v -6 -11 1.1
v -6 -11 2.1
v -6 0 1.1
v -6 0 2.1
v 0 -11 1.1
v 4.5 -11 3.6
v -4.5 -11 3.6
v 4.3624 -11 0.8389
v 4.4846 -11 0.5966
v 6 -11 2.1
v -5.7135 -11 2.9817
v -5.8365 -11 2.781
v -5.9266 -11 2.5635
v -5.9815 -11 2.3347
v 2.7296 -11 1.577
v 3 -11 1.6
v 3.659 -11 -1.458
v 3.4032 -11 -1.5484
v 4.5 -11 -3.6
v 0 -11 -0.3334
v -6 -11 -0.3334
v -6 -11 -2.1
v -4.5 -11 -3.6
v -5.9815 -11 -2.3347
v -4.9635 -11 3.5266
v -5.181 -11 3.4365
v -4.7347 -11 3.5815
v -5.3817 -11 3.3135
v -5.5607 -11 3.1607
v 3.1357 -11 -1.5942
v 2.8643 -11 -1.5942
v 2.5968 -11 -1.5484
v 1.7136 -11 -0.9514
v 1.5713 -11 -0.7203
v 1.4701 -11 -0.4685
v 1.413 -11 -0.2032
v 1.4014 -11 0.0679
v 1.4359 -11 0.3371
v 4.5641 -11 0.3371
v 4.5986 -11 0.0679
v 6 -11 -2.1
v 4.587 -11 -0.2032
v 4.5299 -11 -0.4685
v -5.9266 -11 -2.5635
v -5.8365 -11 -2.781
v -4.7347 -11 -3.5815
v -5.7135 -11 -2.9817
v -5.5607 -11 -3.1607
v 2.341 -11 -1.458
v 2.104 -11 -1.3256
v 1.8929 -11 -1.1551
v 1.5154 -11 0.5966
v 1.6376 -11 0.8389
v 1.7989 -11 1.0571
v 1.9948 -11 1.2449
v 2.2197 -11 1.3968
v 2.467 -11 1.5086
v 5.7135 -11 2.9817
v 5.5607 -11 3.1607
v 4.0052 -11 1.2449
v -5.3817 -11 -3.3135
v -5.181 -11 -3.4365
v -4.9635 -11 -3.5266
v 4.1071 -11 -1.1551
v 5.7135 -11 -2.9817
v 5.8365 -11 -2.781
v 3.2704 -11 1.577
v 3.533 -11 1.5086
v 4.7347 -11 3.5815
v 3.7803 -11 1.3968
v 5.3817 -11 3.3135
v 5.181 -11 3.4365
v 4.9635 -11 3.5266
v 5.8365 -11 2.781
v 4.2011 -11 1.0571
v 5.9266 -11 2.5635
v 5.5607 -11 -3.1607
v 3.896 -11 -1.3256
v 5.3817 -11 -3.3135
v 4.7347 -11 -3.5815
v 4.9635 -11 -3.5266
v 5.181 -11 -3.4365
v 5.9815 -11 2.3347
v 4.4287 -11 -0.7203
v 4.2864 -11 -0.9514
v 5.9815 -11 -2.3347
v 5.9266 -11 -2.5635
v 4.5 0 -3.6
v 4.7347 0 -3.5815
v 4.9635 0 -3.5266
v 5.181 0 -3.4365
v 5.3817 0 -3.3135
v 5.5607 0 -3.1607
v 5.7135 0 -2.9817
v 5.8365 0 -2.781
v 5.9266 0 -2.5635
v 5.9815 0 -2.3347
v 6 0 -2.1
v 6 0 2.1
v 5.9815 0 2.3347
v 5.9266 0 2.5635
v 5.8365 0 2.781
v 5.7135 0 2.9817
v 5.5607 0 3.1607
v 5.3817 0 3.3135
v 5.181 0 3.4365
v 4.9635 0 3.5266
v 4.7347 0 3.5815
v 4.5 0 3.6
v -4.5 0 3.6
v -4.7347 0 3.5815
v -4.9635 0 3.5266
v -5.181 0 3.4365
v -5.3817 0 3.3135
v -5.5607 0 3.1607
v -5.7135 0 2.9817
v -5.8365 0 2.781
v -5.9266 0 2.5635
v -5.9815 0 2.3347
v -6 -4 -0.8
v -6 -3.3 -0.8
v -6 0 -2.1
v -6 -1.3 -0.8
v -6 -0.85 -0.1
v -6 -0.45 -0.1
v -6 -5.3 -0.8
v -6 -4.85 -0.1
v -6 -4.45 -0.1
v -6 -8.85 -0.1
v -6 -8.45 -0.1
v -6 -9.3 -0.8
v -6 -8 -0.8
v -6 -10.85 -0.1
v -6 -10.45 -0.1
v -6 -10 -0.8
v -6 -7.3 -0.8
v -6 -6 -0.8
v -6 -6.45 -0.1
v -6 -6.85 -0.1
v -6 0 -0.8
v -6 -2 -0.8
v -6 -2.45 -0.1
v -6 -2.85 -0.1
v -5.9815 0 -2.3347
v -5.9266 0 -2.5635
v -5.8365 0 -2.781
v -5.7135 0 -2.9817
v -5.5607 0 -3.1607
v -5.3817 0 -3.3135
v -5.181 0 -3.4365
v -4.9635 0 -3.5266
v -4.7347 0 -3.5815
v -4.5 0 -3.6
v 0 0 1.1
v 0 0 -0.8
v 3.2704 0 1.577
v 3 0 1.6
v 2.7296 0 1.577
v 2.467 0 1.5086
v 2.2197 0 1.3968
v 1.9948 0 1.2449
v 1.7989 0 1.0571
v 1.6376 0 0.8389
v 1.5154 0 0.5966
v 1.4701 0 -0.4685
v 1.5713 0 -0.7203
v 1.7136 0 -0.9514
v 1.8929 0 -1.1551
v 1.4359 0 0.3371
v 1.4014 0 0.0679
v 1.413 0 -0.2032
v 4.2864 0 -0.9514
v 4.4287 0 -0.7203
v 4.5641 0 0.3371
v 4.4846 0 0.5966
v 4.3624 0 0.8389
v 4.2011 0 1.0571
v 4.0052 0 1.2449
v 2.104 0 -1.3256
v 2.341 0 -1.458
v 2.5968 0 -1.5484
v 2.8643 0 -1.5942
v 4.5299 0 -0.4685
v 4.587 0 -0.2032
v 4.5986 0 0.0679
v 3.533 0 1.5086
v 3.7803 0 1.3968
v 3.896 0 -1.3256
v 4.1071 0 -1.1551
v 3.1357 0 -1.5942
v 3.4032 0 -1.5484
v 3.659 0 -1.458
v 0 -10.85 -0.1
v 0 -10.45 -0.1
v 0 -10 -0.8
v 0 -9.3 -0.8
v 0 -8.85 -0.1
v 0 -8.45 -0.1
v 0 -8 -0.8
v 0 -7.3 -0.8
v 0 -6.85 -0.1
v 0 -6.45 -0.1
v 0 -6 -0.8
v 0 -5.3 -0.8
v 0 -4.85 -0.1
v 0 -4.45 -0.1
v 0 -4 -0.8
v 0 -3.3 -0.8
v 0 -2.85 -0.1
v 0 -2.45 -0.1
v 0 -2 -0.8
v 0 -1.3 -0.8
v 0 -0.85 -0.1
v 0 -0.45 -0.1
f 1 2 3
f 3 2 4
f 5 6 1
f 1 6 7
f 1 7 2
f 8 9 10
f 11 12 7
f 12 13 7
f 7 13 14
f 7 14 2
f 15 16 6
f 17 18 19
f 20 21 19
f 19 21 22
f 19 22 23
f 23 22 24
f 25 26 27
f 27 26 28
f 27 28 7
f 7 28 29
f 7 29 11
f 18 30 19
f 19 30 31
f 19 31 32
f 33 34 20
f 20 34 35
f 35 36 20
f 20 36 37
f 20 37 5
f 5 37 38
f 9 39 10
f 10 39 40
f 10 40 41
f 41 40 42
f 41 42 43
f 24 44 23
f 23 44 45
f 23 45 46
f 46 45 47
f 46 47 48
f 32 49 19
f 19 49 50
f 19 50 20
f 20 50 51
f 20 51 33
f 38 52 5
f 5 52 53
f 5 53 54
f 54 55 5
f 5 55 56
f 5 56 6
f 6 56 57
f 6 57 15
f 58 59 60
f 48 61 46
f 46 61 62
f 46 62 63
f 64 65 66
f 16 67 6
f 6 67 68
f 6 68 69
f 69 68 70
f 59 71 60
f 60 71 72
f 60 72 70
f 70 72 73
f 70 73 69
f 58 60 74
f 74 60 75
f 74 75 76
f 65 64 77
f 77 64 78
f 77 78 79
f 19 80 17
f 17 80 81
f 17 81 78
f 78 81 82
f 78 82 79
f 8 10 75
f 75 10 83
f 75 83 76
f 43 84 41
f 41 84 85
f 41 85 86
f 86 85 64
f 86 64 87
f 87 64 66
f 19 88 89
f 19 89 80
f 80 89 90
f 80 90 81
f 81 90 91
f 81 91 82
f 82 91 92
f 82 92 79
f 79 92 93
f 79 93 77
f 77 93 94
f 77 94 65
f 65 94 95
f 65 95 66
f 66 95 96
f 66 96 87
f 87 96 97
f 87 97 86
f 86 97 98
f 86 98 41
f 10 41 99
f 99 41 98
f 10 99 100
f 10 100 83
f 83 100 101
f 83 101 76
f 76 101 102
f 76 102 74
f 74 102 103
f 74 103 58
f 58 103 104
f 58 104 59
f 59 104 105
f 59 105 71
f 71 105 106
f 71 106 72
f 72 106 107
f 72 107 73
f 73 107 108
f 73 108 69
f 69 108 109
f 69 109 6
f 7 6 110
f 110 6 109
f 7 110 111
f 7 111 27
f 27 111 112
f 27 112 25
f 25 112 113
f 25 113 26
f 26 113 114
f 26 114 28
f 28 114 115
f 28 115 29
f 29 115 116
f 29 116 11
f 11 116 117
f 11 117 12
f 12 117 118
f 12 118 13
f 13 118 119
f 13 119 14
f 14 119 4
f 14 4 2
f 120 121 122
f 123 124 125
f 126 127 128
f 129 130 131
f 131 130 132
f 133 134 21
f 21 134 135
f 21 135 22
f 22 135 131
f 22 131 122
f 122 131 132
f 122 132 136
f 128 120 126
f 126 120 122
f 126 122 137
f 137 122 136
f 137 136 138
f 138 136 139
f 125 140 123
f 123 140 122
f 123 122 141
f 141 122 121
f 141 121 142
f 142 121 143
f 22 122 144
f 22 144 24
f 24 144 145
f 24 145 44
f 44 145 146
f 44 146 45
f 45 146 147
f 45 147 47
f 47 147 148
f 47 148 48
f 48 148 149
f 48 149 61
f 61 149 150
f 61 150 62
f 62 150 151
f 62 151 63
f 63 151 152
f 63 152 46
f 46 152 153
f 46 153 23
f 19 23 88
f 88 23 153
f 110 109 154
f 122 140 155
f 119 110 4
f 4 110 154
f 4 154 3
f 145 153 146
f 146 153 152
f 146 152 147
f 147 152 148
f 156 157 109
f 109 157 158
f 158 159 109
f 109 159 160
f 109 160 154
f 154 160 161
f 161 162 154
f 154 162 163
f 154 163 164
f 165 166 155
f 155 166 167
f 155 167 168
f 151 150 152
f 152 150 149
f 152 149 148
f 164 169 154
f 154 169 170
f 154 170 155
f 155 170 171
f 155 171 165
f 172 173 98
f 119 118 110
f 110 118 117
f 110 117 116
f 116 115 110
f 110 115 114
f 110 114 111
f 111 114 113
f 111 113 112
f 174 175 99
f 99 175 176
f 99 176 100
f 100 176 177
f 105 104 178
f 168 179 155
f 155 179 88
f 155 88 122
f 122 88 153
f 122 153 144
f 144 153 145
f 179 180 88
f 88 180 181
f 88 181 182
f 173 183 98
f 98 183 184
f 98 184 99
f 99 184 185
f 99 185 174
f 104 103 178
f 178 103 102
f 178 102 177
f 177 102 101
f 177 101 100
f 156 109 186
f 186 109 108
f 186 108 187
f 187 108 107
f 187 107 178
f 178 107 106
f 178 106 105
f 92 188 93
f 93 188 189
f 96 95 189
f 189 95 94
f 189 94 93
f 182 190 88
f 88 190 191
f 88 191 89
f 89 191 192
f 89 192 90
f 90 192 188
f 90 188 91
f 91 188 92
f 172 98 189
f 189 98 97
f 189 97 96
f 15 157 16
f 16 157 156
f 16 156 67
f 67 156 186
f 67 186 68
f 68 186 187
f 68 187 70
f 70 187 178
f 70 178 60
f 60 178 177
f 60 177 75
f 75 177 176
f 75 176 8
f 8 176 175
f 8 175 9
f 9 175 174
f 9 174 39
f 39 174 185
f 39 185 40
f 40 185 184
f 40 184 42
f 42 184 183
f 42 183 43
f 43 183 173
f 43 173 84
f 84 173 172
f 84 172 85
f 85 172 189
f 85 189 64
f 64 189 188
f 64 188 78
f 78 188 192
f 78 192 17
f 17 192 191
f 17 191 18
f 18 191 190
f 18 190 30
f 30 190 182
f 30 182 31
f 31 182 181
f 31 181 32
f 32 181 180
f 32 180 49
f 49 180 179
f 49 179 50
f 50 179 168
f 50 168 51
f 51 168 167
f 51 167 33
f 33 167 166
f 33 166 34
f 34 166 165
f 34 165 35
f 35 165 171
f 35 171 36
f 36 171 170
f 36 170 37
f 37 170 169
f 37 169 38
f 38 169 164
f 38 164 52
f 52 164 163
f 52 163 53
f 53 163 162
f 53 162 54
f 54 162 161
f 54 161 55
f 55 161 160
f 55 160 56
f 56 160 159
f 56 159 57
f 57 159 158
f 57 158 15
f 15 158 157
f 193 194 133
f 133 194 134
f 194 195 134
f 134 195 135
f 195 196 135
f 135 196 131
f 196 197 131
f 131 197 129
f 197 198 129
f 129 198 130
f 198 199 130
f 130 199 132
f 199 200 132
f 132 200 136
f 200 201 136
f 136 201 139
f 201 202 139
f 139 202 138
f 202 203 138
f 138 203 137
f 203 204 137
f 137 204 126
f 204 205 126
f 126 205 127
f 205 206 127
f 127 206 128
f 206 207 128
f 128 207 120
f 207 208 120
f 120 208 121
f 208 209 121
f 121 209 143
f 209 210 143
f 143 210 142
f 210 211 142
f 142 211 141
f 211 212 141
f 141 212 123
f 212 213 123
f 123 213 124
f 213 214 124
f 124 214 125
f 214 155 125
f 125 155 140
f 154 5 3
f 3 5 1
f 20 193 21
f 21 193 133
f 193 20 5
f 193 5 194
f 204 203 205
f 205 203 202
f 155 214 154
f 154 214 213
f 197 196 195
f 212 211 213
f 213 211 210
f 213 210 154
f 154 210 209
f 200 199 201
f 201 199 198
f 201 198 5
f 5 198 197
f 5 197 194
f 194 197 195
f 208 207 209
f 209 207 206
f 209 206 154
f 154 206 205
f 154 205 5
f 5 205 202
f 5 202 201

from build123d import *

# Parameters (mm, degrees)
SKETCH1_R           = 1.6
BOSS_EXTRUDE1_DEPTH = 11
CUT_EXTRUDE1_DEPTH  = 6


with BuildPart() as part:
    # Sketch1 → Boss-Extrude1 (new body)
    with BuildSketch(Plane(origin=(0, 0, 0), x_dir=(1, 0, 0), z_dir=(0, 1, 0))):
        with BuildLine():
            Line((-4.5, -3.6), (4.5, -3.6))
            ThreePointArc((4.5, -3.6), (5.560660172, -3.160660172), (6, -2.1))
            Line((6, -2.1), (6, 2.1))
            ThreePointArc((6, 2.1), (5.560660172, 3.160660172), (4.5, 3.6))
            Line((4.5, 3.6), (-4.5, 3.6))
            ThreePointArc((-4.5, 3.6), (-5.560660172, 3.160660172), (-6, 2.1))
            Line((-6, 2.1), (-6, -2.1))
            ThreePointArc((-6, -2.1), (-5.560660172, -3.160660172), (-4.5, -3.6))
        make_face()
        with Locations((3, 0)):
            Circle(SKETCH1_R, mode=Mode.SUBTRACT)
    extrude(amount=-BOSS_EXTRUDE1_DEPTH)

    # Sketch2 → Cut-Extrude1 (cut)
    with BuildSketch(Plane.ZY.offset(6)):
        Polygon((-0.333384704, -11), (1.1, -11), (1.1, 0), (-0.8, 0), (-0.1, -0.45), (-0.1, -0.85), (-0.8, -1.3), (-0.8, -1.65), (-0.8, -1.999993395), (-0.1, -2.449993395), (-0.1, -2.849993395), (-0.8, -3.299993395), (-0.8, -3.64998679), (-0.8, -3.99998679), (-0.1, -4.44998679), (-0.1, -4.84998679), (-0.8, -5.29998679), (-0.8, -5.649980186), (-0.8, -5.999980186), (-0.1, -6.449980186), (-0.1, -6.849980186), (-0.8, -7.299980186), (-0.8, -7.649973581), (-0.8, -7.999973581), (-0.1, -8.449973581), (-0.1, -8.849973581), (-0.8, -9.299973581), (-0.8, -9.649966976), (-0.8, -9.999966976), (-0.1, -10.449966976), (-0.1, -10.849966976), align=None)
    extrude(amount=-CUT_EXTRUDE1_DEPTH, mode=Mode.SUBTRACT)


solid = part.part
